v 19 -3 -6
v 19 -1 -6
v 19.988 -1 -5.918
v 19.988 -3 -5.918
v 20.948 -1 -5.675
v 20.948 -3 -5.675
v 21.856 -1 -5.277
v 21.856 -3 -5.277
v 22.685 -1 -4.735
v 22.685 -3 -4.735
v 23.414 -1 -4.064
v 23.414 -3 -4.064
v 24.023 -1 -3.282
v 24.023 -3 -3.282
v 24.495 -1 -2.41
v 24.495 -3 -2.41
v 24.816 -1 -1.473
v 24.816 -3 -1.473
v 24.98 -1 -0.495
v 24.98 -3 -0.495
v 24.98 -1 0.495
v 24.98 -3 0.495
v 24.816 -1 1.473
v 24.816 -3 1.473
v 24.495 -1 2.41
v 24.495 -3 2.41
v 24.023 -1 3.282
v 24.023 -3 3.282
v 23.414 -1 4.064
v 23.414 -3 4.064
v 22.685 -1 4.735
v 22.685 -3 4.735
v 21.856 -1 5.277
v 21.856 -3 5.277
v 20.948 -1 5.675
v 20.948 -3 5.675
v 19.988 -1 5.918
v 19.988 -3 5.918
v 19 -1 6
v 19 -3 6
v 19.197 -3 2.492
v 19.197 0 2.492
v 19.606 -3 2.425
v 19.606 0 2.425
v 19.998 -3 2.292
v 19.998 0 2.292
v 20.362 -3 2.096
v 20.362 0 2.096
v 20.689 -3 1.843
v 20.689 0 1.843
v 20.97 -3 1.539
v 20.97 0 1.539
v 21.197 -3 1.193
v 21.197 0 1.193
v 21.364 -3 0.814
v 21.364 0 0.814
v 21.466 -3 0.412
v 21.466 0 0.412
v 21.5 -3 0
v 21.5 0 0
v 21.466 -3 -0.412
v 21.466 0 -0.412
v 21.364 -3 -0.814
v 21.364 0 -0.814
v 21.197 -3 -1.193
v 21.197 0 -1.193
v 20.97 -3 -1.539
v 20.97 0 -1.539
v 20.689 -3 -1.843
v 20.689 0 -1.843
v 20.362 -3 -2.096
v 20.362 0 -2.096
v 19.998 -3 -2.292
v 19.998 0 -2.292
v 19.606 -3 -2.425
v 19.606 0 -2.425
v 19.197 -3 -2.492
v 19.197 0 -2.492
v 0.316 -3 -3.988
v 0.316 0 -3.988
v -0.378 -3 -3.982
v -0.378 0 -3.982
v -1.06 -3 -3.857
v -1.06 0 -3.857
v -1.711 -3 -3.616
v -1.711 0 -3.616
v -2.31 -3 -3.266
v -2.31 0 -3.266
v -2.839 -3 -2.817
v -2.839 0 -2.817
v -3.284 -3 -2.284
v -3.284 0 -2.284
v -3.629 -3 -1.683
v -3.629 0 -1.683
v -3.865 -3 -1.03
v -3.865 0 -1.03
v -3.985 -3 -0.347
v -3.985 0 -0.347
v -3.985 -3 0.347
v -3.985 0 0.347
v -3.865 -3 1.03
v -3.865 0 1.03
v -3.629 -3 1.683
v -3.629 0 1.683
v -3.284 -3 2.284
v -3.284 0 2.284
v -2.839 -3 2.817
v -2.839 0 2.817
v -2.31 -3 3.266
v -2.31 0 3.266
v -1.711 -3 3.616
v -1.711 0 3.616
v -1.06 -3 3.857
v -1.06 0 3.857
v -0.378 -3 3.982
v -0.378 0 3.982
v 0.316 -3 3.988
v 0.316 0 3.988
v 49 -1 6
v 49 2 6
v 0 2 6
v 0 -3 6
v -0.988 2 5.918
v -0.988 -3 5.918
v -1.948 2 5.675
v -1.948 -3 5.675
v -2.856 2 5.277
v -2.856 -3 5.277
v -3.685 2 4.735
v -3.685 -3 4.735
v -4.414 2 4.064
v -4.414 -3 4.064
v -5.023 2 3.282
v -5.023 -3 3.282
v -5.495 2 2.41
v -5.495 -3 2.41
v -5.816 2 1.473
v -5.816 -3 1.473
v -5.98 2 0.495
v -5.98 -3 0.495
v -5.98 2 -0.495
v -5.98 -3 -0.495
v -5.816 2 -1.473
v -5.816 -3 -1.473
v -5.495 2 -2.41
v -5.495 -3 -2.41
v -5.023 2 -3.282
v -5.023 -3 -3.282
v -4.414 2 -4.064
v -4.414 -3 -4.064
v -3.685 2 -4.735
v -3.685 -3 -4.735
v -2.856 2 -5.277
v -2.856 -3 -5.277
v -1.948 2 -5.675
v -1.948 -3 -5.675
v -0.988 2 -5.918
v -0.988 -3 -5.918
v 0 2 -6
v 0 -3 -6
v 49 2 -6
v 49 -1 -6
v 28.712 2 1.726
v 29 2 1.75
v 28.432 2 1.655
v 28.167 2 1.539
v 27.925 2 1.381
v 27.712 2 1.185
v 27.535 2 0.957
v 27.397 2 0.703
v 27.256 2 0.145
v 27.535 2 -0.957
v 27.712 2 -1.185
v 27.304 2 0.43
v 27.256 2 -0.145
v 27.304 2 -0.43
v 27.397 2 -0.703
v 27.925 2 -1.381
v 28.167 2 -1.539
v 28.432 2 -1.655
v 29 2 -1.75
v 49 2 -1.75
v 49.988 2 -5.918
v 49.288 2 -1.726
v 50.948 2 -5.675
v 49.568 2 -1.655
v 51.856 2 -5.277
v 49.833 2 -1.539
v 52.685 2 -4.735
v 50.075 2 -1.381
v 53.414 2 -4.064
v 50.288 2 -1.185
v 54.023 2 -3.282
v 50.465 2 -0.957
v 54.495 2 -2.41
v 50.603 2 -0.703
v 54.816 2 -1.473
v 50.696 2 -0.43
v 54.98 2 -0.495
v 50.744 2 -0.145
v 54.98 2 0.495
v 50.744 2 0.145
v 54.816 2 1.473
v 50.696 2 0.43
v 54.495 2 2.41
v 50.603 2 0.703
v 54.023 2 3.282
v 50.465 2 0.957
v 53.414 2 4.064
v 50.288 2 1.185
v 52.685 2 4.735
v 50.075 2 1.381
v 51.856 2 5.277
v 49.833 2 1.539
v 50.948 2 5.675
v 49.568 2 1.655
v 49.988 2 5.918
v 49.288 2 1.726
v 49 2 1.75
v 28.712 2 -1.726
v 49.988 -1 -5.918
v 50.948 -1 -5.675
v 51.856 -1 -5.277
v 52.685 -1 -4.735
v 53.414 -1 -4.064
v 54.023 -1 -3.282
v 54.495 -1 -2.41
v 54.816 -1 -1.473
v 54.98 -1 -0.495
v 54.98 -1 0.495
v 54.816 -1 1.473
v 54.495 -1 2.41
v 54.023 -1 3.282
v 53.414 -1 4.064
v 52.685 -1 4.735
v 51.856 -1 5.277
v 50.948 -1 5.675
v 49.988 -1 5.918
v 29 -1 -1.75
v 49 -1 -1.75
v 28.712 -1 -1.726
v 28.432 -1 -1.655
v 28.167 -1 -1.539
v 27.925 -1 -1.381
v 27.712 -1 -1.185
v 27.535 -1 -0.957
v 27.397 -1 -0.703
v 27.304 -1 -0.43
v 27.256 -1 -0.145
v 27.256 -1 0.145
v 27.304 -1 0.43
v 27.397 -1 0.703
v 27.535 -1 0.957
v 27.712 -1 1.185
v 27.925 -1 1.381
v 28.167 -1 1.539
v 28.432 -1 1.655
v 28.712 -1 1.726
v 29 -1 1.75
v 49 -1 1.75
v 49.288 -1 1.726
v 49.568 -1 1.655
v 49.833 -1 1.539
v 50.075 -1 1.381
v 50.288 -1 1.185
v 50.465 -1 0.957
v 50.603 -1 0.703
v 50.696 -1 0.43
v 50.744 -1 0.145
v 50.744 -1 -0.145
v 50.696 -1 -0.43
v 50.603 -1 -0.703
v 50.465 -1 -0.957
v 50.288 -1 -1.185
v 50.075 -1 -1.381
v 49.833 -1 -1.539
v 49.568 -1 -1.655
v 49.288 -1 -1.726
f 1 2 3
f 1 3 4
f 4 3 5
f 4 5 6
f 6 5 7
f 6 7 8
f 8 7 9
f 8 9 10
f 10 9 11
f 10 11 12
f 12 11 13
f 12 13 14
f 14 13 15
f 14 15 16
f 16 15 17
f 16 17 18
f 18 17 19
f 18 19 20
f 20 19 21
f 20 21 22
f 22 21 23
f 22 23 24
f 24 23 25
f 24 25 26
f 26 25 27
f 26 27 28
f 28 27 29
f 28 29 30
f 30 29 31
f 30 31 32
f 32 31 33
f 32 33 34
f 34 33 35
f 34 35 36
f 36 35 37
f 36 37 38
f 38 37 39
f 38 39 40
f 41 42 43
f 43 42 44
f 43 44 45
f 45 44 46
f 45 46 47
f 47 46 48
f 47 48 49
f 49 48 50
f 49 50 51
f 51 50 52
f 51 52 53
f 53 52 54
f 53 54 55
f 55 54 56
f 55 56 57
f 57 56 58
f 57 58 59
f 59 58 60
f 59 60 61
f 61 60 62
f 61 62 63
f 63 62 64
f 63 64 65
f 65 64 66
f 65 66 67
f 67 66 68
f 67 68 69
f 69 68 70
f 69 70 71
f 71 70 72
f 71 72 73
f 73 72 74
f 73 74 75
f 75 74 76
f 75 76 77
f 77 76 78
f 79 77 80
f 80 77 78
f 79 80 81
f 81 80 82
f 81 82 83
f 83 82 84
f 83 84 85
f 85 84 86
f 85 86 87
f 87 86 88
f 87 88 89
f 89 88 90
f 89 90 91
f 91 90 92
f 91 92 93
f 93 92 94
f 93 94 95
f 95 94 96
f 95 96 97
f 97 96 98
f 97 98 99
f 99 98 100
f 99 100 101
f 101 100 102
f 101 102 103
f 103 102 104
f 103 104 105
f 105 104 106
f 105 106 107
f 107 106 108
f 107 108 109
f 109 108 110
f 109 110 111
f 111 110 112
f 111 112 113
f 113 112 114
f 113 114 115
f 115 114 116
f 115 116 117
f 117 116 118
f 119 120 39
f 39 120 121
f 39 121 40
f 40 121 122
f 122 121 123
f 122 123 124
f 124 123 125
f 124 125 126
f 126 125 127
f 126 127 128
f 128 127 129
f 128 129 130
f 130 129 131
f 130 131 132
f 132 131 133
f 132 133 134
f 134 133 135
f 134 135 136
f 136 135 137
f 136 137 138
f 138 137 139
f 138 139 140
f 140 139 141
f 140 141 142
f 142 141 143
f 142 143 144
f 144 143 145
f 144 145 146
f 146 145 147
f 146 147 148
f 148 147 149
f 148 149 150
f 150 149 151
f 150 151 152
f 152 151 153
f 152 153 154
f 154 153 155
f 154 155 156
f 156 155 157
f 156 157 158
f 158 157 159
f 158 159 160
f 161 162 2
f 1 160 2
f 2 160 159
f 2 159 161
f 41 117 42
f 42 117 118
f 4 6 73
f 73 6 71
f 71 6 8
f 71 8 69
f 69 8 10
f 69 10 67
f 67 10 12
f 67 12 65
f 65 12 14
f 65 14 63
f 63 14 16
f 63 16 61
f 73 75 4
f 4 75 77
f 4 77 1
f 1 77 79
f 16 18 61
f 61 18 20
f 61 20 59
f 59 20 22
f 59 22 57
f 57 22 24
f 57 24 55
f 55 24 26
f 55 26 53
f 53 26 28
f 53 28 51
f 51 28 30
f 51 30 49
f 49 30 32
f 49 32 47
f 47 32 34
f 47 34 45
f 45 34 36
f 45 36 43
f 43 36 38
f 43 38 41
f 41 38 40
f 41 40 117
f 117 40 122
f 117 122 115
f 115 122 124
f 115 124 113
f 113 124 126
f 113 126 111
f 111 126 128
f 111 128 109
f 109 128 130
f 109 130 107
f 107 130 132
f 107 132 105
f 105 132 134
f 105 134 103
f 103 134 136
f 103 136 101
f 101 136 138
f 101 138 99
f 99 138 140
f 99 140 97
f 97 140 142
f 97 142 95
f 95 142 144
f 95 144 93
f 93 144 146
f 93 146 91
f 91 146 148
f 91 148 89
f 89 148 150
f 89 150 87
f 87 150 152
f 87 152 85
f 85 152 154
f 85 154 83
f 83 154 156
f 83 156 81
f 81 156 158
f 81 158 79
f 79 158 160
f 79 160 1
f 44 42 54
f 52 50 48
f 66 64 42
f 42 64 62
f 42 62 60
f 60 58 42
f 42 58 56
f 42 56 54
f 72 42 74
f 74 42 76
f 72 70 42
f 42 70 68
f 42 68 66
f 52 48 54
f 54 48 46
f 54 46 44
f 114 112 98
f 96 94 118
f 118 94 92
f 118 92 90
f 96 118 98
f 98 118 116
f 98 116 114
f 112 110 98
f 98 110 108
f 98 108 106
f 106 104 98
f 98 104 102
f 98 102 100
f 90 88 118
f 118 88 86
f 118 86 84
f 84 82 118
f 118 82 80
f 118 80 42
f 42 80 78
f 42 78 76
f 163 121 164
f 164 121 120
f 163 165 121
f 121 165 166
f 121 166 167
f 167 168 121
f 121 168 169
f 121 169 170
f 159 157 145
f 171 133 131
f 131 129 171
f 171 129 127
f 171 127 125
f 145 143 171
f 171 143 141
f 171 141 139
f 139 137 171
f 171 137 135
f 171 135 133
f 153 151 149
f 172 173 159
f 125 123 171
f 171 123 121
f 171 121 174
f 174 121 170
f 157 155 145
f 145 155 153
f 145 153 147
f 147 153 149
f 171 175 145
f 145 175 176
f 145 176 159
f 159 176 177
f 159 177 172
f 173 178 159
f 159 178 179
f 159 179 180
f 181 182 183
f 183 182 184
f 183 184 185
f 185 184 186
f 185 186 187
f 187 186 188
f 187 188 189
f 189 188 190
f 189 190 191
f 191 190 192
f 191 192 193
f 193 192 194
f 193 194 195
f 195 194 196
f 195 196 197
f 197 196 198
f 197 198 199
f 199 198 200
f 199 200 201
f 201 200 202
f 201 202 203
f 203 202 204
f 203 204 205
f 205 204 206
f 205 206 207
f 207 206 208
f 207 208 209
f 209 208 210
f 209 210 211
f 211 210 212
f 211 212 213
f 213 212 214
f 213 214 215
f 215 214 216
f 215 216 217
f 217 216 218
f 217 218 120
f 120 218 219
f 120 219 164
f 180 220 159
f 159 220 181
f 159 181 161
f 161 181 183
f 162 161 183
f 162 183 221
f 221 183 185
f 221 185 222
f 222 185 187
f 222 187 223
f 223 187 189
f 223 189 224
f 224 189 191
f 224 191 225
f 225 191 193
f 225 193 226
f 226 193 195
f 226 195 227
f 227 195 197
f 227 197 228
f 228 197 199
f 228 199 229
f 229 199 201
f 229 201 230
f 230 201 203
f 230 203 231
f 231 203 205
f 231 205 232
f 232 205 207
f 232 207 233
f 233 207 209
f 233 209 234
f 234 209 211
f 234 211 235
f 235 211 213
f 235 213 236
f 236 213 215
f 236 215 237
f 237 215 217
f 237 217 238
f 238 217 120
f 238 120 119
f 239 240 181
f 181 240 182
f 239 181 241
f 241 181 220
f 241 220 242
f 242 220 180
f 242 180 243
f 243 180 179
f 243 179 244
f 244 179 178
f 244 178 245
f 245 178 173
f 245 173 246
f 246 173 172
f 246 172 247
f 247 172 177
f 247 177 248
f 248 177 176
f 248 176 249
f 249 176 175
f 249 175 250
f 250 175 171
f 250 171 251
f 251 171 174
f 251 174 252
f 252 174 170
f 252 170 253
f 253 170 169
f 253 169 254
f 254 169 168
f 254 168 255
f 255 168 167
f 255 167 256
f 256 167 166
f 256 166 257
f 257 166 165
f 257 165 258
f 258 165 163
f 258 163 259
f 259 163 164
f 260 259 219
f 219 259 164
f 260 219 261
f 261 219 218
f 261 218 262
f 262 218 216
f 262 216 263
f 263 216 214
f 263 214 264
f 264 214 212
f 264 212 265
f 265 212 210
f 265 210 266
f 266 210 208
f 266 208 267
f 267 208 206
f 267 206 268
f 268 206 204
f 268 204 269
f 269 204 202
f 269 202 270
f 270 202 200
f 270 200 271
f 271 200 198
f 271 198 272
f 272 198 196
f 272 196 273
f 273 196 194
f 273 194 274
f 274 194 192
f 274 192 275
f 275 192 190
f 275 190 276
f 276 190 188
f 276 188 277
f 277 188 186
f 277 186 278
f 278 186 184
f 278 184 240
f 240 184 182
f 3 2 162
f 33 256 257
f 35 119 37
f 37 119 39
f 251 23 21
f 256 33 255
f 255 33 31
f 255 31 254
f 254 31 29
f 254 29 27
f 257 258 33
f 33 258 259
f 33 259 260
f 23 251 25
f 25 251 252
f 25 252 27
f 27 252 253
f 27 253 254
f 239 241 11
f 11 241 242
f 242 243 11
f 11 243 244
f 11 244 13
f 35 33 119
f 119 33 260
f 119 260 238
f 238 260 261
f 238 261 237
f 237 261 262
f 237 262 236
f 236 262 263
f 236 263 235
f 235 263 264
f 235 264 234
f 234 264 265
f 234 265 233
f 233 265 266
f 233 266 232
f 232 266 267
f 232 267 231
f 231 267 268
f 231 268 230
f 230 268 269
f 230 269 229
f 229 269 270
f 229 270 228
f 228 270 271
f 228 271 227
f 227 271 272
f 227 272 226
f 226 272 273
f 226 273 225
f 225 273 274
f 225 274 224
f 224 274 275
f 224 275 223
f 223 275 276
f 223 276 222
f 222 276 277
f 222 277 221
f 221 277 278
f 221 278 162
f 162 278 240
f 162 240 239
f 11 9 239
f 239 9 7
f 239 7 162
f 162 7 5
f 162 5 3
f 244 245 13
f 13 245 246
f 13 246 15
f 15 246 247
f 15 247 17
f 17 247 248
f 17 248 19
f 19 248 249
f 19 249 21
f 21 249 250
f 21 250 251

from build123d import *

# Parameters (mm, degrees)
EXTRUDE_1_DEPTH = 3
EXTRUDE_START   = 2
EXTRUDE_2_DEPTH = 2
EXTRUDE_3_DEPTH = 3


with BuildPart() as part:
    # 草图1 → 凸台-拉伸1 (new body)
    with BuildSketch(Plane(origin=(0, 0, 0), x_dir=(1, 0, 0), z_dir=(0, 1, 0))):
        with BuildLine():
            ThreePointArc((0, 6), (-6, 0), (0, -6))
            Line((0, -6), (19, -6))
            ThreePointArc((19, -6), (25, 0), (19, 6))
            Line((19, 6), (0, 6))
        make_face()
        with BuildLine():
            ThreePointArc((0.315789474, -3.987515142), (-4, 0), (0.315789474, 3.987515142))
            Line((0.315789474, 3.987515142), (19.197368421, 2.492196964))
            ThreePointArc((19.197368421, 2.492196964), (21.5, 0), (19.197368421, -2.492196964))
            Line((19.197368421, -2.492196964), (0.315789474, -3.987515142))
        make_face(mode=Mode.SUBTRACT)
    extrude(amount=-EXTRUDE_1_DEPTH)

    # 草图1<4> → 凸台-拉伸2 (add)
    with BuildSketch(Plane(origin=(0, 0, 0), x_dir=(1, 0, 0), z_dir=(0, 1, 0)).offset(EXTRUDE_START)):
        with BuildLine():
            ThreePointArc((0, 6), (-6, 0), (0, -6))
            Line((0, -6), (19, -6))
            ThreePointArc((19, -6), (25, 0), (19, 6))
            Line((19, 6), (0, 6))
        make_face()
    extrude(amount=-EXTRUDE_2_DEPTH)

    # 草图2 → 凸台-拉伸3 (add)
    with BuildSketch(Plane(origin=(0, 2, 0), x_dir=(1, 0, 0), z_dir=(0, 1, 0))):
        with BuildLine():
            Line((49, 6), (19, 6))
            ThreePointArc((19, 6), (25, 0), (19, -6))
            Line((19, -6), (49, -6))
            ThreePointArc((49, -6), (55, 0), (49, 6))
        make_face()
        with BuildLine():
            ThreePointArc((49, 1.75), (50.75, 0), (49, -1.75))
            Line((49, -1.75), (29, -1.75))
            ThreePointArc((29, -1.75), (27.25, 0), (29, 1.75))
            Line((29, 1.75), (49, 1.75))
        make_face(mode=Mode.SUBTRACT)
    extrude(amount=-EXTRUDE_3_DEPTH)


solid = part.part
